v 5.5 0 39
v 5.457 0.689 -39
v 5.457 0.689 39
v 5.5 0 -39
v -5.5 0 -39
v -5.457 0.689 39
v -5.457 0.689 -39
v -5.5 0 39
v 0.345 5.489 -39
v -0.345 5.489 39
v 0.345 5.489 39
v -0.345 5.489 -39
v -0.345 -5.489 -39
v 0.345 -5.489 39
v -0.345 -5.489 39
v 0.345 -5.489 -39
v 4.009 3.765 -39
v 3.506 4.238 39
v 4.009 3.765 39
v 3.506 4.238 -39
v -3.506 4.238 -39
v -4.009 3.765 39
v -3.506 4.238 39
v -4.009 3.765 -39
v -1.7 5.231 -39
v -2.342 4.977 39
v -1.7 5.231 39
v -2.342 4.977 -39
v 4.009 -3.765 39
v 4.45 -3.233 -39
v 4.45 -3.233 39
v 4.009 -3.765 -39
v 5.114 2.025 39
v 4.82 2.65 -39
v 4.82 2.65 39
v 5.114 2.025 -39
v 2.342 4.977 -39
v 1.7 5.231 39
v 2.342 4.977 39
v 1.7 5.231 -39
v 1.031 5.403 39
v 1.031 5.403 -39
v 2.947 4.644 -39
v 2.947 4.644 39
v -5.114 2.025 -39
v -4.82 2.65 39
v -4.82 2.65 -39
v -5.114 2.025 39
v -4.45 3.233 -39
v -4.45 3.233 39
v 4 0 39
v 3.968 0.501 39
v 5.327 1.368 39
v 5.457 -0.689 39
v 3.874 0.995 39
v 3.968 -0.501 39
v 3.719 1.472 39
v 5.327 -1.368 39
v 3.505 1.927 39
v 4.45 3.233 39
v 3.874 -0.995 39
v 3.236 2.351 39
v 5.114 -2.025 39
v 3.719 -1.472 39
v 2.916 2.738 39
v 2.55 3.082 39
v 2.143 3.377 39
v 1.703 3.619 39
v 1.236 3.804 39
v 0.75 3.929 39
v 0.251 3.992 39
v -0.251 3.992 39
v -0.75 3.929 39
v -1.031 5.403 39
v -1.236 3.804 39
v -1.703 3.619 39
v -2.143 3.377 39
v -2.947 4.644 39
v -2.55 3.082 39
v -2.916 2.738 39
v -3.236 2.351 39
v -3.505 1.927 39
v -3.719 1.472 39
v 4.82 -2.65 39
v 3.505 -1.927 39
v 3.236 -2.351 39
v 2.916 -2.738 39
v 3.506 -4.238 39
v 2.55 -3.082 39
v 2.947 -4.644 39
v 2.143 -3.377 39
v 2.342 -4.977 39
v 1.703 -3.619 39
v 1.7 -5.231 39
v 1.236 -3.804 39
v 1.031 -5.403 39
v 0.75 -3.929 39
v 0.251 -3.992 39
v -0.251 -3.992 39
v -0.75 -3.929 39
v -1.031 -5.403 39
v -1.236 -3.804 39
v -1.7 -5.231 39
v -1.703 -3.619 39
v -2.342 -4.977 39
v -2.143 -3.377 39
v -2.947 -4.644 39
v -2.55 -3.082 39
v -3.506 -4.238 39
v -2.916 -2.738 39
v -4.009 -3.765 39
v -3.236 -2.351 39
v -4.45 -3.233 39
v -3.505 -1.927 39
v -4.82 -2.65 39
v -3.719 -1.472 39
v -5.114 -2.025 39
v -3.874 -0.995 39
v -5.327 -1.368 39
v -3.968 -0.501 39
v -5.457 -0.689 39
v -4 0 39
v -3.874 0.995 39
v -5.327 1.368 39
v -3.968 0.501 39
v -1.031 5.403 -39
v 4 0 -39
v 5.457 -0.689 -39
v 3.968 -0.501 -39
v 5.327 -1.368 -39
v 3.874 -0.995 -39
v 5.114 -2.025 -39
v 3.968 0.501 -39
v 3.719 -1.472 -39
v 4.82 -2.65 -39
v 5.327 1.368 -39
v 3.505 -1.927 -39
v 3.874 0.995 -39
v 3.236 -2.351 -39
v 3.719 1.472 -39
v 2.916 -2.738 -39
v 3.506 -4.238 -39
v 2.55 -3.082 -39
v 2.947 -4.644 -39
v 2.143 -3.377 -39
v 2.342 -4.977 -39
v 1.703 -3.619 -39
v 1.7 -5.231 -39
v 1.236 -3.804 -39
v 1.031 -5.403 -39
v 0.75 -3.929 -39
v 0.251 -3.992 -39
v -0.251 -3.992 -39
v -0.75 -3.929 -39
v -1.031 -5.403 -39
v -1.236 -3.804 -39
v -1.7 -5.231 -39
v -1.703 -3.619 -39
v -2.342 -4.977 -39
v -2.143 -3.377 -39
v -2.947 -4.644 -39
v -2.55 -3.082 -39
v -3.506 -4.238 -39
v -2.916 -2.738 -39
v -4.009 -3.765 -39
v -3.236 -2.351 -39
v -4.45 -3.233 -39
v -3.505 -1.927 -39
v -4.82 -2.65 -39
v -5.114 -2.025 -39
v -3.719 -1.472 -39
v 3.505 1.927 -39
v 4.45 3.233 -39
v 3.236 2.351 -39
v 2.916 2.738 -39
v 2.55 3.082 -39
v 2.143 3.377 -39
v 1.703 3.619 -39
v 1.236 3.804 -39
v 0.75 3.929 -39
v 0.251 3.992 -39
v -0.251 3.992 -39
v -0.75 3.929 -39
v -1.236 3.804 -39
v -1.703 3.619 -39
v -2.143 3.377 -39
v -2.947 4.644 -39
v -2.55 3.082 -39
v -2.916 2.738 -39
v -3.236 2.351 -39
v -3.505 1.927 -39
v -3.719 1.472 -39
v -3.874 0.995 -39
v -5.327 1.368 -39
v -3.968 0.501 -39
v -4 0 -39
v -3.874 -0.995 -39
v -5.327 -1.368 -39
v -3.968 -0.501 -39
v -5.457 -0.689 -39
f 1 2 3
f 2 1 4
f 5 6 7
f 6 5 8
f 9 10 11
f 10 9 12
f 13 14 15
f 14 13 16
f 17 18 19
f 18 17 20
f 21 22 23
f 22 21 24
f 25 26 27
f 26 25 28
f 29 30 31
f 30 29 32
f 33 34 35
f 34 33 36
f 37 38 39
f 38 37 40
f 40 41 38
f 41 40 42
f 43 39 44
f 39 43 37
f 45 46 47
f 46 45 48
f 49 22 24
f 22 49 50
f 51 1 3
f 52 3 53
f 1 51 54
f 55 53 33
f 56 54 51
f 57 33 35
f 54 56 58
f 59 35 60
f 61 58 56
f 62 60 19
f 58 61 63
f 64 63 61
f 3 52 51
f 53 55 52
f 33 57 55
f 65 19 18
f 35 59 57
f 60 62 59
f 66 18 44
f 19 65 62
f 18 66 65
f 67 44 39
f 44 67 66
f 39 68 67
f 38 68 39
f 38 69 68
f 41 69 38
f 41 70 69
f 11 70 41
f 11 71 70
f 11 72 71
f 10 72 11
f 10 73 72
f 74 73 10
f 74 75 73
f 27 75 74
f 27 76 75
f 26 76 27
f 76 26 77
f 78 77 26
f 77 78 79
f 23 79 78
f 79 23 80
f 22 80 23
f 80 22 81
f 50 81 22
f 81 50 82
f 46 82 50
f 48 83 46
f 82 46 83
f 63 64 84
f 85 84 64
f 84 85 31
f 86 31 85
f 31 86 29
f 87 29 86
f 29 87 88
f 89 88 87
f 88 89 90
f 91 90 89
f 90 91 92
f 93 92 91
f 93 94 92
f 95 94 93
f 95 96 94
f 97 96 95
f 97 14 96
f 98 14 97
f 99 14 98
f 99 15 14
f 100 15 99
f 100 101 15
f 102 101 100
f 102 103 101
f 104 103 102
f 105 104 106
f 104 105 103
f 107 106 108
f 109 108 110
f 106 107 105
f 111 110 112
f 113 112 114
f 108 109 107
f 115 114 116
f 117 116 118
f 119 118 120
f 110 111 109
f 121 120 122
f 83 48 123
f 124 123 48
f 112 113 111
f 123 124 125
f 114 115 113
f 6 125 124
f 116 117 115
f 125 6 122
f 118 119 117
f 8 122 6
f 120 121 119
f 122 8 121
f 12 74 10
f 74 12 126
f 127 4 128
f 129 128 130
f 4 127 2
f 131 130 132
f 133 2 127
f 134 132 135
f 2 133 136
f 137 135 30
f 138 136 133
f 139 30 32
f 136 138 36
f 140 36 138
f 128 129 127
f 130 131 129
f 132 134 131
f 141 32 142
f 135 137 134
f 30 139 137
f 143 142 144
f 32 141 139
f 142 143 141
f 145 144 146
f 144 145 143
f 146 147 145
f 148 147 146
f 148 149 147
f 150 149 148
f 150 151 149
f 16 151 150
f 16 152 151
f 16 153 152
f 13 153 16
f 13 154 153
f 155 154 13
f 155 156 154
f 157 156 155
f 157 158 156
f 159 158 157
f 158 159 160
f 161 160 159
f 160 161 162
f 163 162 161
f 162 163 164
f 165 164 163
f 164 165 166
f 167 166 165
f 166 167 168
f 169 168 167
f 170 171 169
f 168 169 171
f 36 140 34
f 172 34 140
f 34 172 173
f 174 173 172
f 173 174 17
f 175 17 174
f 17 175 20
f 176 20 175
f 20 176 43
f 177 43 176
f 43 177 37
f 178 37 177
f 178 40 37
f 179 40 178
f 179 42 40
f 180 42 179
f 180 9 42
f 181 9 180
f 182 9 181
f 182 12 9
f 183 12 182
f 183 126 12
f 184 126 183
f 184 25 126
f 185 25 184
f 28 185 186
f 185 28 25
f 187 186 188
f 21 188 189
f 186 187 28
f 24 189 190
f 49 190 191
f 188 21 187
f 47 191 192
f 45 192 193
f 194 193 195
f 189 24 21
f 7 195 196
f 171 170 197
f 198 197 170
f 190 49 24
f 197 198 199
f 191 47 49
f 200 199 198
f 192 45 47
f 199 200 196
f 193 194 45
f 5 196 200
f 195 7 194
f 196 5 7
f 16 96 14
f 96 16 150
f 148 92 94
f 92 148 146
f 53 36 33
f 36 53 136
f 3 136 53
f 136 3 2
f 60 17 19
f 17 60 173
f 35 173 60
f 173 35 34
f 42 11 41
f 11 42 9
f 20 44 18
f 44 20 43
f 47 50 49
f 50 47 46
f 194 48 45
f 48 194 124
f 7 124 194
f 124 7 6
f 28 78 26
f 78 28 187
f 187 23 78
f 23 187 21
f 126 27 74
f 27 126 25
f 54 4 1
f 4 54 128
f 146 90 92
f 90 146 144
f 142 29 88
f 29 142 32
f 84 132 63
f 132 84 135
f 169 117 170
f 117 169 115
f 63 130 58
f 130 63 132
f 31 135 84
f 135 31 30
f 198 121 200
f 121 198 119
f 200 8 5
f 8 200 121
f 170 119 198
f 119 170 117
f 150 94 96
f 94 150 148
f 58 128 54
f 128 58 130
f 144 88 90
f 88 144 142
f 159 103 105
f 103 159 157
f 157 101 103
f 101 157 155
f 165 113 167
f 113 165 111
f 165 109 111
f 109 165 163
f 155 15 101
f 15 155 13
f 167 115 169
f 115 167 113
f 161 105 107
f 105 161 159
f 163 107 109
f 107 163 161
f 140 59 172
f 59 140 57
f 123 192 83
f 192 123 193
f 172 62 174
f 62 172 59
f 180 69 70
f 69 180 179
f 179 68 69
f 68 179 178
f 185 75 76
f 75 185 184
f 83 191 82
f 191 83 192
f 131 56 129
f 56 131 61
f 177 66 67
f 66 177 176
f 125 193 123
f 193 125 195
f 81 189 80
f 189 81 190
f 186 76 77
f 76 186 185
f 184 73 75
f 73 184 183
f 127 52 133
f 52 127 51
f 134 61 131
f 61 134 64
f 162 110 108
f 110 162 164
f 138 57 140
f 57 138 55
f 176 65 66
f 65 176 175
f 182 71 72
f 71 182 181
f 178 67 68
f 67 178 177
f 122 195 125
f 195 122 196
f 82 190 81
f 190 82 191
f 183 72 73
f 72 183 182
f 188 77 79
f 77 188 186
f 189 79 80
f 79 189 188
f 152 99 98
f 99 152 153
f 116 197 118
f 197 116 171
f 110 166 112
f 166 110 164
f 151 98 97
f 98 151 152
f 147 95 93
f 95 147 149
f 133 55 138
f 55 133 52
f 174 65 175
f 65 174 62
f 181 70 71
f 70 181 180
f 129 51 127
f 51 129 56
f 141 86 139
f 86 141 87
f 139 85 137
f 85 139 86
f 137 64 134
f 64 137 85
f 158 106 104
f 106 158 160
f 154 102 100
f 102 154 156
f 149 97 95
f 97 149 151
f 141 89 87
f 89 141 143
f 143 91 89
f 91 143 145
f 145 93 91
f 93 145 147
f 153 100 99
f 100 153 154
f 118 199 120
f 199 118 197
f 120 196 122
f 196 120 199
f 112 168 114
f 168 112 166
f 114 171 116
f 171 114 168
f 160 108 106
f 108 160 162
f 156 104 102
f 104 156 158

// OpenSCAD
$fn = 50;


difference() {
	union() {
		translate(v = [0, 0, -39.0000000000]) {
			cylinder(h = 78, r = 5.5000000000);
		}
	}
	union() {
		translate(v = [0, 0, -100.0000000000]) {
			cylinder(h = 200, r = 4.0000000000);
		}
	}
}
